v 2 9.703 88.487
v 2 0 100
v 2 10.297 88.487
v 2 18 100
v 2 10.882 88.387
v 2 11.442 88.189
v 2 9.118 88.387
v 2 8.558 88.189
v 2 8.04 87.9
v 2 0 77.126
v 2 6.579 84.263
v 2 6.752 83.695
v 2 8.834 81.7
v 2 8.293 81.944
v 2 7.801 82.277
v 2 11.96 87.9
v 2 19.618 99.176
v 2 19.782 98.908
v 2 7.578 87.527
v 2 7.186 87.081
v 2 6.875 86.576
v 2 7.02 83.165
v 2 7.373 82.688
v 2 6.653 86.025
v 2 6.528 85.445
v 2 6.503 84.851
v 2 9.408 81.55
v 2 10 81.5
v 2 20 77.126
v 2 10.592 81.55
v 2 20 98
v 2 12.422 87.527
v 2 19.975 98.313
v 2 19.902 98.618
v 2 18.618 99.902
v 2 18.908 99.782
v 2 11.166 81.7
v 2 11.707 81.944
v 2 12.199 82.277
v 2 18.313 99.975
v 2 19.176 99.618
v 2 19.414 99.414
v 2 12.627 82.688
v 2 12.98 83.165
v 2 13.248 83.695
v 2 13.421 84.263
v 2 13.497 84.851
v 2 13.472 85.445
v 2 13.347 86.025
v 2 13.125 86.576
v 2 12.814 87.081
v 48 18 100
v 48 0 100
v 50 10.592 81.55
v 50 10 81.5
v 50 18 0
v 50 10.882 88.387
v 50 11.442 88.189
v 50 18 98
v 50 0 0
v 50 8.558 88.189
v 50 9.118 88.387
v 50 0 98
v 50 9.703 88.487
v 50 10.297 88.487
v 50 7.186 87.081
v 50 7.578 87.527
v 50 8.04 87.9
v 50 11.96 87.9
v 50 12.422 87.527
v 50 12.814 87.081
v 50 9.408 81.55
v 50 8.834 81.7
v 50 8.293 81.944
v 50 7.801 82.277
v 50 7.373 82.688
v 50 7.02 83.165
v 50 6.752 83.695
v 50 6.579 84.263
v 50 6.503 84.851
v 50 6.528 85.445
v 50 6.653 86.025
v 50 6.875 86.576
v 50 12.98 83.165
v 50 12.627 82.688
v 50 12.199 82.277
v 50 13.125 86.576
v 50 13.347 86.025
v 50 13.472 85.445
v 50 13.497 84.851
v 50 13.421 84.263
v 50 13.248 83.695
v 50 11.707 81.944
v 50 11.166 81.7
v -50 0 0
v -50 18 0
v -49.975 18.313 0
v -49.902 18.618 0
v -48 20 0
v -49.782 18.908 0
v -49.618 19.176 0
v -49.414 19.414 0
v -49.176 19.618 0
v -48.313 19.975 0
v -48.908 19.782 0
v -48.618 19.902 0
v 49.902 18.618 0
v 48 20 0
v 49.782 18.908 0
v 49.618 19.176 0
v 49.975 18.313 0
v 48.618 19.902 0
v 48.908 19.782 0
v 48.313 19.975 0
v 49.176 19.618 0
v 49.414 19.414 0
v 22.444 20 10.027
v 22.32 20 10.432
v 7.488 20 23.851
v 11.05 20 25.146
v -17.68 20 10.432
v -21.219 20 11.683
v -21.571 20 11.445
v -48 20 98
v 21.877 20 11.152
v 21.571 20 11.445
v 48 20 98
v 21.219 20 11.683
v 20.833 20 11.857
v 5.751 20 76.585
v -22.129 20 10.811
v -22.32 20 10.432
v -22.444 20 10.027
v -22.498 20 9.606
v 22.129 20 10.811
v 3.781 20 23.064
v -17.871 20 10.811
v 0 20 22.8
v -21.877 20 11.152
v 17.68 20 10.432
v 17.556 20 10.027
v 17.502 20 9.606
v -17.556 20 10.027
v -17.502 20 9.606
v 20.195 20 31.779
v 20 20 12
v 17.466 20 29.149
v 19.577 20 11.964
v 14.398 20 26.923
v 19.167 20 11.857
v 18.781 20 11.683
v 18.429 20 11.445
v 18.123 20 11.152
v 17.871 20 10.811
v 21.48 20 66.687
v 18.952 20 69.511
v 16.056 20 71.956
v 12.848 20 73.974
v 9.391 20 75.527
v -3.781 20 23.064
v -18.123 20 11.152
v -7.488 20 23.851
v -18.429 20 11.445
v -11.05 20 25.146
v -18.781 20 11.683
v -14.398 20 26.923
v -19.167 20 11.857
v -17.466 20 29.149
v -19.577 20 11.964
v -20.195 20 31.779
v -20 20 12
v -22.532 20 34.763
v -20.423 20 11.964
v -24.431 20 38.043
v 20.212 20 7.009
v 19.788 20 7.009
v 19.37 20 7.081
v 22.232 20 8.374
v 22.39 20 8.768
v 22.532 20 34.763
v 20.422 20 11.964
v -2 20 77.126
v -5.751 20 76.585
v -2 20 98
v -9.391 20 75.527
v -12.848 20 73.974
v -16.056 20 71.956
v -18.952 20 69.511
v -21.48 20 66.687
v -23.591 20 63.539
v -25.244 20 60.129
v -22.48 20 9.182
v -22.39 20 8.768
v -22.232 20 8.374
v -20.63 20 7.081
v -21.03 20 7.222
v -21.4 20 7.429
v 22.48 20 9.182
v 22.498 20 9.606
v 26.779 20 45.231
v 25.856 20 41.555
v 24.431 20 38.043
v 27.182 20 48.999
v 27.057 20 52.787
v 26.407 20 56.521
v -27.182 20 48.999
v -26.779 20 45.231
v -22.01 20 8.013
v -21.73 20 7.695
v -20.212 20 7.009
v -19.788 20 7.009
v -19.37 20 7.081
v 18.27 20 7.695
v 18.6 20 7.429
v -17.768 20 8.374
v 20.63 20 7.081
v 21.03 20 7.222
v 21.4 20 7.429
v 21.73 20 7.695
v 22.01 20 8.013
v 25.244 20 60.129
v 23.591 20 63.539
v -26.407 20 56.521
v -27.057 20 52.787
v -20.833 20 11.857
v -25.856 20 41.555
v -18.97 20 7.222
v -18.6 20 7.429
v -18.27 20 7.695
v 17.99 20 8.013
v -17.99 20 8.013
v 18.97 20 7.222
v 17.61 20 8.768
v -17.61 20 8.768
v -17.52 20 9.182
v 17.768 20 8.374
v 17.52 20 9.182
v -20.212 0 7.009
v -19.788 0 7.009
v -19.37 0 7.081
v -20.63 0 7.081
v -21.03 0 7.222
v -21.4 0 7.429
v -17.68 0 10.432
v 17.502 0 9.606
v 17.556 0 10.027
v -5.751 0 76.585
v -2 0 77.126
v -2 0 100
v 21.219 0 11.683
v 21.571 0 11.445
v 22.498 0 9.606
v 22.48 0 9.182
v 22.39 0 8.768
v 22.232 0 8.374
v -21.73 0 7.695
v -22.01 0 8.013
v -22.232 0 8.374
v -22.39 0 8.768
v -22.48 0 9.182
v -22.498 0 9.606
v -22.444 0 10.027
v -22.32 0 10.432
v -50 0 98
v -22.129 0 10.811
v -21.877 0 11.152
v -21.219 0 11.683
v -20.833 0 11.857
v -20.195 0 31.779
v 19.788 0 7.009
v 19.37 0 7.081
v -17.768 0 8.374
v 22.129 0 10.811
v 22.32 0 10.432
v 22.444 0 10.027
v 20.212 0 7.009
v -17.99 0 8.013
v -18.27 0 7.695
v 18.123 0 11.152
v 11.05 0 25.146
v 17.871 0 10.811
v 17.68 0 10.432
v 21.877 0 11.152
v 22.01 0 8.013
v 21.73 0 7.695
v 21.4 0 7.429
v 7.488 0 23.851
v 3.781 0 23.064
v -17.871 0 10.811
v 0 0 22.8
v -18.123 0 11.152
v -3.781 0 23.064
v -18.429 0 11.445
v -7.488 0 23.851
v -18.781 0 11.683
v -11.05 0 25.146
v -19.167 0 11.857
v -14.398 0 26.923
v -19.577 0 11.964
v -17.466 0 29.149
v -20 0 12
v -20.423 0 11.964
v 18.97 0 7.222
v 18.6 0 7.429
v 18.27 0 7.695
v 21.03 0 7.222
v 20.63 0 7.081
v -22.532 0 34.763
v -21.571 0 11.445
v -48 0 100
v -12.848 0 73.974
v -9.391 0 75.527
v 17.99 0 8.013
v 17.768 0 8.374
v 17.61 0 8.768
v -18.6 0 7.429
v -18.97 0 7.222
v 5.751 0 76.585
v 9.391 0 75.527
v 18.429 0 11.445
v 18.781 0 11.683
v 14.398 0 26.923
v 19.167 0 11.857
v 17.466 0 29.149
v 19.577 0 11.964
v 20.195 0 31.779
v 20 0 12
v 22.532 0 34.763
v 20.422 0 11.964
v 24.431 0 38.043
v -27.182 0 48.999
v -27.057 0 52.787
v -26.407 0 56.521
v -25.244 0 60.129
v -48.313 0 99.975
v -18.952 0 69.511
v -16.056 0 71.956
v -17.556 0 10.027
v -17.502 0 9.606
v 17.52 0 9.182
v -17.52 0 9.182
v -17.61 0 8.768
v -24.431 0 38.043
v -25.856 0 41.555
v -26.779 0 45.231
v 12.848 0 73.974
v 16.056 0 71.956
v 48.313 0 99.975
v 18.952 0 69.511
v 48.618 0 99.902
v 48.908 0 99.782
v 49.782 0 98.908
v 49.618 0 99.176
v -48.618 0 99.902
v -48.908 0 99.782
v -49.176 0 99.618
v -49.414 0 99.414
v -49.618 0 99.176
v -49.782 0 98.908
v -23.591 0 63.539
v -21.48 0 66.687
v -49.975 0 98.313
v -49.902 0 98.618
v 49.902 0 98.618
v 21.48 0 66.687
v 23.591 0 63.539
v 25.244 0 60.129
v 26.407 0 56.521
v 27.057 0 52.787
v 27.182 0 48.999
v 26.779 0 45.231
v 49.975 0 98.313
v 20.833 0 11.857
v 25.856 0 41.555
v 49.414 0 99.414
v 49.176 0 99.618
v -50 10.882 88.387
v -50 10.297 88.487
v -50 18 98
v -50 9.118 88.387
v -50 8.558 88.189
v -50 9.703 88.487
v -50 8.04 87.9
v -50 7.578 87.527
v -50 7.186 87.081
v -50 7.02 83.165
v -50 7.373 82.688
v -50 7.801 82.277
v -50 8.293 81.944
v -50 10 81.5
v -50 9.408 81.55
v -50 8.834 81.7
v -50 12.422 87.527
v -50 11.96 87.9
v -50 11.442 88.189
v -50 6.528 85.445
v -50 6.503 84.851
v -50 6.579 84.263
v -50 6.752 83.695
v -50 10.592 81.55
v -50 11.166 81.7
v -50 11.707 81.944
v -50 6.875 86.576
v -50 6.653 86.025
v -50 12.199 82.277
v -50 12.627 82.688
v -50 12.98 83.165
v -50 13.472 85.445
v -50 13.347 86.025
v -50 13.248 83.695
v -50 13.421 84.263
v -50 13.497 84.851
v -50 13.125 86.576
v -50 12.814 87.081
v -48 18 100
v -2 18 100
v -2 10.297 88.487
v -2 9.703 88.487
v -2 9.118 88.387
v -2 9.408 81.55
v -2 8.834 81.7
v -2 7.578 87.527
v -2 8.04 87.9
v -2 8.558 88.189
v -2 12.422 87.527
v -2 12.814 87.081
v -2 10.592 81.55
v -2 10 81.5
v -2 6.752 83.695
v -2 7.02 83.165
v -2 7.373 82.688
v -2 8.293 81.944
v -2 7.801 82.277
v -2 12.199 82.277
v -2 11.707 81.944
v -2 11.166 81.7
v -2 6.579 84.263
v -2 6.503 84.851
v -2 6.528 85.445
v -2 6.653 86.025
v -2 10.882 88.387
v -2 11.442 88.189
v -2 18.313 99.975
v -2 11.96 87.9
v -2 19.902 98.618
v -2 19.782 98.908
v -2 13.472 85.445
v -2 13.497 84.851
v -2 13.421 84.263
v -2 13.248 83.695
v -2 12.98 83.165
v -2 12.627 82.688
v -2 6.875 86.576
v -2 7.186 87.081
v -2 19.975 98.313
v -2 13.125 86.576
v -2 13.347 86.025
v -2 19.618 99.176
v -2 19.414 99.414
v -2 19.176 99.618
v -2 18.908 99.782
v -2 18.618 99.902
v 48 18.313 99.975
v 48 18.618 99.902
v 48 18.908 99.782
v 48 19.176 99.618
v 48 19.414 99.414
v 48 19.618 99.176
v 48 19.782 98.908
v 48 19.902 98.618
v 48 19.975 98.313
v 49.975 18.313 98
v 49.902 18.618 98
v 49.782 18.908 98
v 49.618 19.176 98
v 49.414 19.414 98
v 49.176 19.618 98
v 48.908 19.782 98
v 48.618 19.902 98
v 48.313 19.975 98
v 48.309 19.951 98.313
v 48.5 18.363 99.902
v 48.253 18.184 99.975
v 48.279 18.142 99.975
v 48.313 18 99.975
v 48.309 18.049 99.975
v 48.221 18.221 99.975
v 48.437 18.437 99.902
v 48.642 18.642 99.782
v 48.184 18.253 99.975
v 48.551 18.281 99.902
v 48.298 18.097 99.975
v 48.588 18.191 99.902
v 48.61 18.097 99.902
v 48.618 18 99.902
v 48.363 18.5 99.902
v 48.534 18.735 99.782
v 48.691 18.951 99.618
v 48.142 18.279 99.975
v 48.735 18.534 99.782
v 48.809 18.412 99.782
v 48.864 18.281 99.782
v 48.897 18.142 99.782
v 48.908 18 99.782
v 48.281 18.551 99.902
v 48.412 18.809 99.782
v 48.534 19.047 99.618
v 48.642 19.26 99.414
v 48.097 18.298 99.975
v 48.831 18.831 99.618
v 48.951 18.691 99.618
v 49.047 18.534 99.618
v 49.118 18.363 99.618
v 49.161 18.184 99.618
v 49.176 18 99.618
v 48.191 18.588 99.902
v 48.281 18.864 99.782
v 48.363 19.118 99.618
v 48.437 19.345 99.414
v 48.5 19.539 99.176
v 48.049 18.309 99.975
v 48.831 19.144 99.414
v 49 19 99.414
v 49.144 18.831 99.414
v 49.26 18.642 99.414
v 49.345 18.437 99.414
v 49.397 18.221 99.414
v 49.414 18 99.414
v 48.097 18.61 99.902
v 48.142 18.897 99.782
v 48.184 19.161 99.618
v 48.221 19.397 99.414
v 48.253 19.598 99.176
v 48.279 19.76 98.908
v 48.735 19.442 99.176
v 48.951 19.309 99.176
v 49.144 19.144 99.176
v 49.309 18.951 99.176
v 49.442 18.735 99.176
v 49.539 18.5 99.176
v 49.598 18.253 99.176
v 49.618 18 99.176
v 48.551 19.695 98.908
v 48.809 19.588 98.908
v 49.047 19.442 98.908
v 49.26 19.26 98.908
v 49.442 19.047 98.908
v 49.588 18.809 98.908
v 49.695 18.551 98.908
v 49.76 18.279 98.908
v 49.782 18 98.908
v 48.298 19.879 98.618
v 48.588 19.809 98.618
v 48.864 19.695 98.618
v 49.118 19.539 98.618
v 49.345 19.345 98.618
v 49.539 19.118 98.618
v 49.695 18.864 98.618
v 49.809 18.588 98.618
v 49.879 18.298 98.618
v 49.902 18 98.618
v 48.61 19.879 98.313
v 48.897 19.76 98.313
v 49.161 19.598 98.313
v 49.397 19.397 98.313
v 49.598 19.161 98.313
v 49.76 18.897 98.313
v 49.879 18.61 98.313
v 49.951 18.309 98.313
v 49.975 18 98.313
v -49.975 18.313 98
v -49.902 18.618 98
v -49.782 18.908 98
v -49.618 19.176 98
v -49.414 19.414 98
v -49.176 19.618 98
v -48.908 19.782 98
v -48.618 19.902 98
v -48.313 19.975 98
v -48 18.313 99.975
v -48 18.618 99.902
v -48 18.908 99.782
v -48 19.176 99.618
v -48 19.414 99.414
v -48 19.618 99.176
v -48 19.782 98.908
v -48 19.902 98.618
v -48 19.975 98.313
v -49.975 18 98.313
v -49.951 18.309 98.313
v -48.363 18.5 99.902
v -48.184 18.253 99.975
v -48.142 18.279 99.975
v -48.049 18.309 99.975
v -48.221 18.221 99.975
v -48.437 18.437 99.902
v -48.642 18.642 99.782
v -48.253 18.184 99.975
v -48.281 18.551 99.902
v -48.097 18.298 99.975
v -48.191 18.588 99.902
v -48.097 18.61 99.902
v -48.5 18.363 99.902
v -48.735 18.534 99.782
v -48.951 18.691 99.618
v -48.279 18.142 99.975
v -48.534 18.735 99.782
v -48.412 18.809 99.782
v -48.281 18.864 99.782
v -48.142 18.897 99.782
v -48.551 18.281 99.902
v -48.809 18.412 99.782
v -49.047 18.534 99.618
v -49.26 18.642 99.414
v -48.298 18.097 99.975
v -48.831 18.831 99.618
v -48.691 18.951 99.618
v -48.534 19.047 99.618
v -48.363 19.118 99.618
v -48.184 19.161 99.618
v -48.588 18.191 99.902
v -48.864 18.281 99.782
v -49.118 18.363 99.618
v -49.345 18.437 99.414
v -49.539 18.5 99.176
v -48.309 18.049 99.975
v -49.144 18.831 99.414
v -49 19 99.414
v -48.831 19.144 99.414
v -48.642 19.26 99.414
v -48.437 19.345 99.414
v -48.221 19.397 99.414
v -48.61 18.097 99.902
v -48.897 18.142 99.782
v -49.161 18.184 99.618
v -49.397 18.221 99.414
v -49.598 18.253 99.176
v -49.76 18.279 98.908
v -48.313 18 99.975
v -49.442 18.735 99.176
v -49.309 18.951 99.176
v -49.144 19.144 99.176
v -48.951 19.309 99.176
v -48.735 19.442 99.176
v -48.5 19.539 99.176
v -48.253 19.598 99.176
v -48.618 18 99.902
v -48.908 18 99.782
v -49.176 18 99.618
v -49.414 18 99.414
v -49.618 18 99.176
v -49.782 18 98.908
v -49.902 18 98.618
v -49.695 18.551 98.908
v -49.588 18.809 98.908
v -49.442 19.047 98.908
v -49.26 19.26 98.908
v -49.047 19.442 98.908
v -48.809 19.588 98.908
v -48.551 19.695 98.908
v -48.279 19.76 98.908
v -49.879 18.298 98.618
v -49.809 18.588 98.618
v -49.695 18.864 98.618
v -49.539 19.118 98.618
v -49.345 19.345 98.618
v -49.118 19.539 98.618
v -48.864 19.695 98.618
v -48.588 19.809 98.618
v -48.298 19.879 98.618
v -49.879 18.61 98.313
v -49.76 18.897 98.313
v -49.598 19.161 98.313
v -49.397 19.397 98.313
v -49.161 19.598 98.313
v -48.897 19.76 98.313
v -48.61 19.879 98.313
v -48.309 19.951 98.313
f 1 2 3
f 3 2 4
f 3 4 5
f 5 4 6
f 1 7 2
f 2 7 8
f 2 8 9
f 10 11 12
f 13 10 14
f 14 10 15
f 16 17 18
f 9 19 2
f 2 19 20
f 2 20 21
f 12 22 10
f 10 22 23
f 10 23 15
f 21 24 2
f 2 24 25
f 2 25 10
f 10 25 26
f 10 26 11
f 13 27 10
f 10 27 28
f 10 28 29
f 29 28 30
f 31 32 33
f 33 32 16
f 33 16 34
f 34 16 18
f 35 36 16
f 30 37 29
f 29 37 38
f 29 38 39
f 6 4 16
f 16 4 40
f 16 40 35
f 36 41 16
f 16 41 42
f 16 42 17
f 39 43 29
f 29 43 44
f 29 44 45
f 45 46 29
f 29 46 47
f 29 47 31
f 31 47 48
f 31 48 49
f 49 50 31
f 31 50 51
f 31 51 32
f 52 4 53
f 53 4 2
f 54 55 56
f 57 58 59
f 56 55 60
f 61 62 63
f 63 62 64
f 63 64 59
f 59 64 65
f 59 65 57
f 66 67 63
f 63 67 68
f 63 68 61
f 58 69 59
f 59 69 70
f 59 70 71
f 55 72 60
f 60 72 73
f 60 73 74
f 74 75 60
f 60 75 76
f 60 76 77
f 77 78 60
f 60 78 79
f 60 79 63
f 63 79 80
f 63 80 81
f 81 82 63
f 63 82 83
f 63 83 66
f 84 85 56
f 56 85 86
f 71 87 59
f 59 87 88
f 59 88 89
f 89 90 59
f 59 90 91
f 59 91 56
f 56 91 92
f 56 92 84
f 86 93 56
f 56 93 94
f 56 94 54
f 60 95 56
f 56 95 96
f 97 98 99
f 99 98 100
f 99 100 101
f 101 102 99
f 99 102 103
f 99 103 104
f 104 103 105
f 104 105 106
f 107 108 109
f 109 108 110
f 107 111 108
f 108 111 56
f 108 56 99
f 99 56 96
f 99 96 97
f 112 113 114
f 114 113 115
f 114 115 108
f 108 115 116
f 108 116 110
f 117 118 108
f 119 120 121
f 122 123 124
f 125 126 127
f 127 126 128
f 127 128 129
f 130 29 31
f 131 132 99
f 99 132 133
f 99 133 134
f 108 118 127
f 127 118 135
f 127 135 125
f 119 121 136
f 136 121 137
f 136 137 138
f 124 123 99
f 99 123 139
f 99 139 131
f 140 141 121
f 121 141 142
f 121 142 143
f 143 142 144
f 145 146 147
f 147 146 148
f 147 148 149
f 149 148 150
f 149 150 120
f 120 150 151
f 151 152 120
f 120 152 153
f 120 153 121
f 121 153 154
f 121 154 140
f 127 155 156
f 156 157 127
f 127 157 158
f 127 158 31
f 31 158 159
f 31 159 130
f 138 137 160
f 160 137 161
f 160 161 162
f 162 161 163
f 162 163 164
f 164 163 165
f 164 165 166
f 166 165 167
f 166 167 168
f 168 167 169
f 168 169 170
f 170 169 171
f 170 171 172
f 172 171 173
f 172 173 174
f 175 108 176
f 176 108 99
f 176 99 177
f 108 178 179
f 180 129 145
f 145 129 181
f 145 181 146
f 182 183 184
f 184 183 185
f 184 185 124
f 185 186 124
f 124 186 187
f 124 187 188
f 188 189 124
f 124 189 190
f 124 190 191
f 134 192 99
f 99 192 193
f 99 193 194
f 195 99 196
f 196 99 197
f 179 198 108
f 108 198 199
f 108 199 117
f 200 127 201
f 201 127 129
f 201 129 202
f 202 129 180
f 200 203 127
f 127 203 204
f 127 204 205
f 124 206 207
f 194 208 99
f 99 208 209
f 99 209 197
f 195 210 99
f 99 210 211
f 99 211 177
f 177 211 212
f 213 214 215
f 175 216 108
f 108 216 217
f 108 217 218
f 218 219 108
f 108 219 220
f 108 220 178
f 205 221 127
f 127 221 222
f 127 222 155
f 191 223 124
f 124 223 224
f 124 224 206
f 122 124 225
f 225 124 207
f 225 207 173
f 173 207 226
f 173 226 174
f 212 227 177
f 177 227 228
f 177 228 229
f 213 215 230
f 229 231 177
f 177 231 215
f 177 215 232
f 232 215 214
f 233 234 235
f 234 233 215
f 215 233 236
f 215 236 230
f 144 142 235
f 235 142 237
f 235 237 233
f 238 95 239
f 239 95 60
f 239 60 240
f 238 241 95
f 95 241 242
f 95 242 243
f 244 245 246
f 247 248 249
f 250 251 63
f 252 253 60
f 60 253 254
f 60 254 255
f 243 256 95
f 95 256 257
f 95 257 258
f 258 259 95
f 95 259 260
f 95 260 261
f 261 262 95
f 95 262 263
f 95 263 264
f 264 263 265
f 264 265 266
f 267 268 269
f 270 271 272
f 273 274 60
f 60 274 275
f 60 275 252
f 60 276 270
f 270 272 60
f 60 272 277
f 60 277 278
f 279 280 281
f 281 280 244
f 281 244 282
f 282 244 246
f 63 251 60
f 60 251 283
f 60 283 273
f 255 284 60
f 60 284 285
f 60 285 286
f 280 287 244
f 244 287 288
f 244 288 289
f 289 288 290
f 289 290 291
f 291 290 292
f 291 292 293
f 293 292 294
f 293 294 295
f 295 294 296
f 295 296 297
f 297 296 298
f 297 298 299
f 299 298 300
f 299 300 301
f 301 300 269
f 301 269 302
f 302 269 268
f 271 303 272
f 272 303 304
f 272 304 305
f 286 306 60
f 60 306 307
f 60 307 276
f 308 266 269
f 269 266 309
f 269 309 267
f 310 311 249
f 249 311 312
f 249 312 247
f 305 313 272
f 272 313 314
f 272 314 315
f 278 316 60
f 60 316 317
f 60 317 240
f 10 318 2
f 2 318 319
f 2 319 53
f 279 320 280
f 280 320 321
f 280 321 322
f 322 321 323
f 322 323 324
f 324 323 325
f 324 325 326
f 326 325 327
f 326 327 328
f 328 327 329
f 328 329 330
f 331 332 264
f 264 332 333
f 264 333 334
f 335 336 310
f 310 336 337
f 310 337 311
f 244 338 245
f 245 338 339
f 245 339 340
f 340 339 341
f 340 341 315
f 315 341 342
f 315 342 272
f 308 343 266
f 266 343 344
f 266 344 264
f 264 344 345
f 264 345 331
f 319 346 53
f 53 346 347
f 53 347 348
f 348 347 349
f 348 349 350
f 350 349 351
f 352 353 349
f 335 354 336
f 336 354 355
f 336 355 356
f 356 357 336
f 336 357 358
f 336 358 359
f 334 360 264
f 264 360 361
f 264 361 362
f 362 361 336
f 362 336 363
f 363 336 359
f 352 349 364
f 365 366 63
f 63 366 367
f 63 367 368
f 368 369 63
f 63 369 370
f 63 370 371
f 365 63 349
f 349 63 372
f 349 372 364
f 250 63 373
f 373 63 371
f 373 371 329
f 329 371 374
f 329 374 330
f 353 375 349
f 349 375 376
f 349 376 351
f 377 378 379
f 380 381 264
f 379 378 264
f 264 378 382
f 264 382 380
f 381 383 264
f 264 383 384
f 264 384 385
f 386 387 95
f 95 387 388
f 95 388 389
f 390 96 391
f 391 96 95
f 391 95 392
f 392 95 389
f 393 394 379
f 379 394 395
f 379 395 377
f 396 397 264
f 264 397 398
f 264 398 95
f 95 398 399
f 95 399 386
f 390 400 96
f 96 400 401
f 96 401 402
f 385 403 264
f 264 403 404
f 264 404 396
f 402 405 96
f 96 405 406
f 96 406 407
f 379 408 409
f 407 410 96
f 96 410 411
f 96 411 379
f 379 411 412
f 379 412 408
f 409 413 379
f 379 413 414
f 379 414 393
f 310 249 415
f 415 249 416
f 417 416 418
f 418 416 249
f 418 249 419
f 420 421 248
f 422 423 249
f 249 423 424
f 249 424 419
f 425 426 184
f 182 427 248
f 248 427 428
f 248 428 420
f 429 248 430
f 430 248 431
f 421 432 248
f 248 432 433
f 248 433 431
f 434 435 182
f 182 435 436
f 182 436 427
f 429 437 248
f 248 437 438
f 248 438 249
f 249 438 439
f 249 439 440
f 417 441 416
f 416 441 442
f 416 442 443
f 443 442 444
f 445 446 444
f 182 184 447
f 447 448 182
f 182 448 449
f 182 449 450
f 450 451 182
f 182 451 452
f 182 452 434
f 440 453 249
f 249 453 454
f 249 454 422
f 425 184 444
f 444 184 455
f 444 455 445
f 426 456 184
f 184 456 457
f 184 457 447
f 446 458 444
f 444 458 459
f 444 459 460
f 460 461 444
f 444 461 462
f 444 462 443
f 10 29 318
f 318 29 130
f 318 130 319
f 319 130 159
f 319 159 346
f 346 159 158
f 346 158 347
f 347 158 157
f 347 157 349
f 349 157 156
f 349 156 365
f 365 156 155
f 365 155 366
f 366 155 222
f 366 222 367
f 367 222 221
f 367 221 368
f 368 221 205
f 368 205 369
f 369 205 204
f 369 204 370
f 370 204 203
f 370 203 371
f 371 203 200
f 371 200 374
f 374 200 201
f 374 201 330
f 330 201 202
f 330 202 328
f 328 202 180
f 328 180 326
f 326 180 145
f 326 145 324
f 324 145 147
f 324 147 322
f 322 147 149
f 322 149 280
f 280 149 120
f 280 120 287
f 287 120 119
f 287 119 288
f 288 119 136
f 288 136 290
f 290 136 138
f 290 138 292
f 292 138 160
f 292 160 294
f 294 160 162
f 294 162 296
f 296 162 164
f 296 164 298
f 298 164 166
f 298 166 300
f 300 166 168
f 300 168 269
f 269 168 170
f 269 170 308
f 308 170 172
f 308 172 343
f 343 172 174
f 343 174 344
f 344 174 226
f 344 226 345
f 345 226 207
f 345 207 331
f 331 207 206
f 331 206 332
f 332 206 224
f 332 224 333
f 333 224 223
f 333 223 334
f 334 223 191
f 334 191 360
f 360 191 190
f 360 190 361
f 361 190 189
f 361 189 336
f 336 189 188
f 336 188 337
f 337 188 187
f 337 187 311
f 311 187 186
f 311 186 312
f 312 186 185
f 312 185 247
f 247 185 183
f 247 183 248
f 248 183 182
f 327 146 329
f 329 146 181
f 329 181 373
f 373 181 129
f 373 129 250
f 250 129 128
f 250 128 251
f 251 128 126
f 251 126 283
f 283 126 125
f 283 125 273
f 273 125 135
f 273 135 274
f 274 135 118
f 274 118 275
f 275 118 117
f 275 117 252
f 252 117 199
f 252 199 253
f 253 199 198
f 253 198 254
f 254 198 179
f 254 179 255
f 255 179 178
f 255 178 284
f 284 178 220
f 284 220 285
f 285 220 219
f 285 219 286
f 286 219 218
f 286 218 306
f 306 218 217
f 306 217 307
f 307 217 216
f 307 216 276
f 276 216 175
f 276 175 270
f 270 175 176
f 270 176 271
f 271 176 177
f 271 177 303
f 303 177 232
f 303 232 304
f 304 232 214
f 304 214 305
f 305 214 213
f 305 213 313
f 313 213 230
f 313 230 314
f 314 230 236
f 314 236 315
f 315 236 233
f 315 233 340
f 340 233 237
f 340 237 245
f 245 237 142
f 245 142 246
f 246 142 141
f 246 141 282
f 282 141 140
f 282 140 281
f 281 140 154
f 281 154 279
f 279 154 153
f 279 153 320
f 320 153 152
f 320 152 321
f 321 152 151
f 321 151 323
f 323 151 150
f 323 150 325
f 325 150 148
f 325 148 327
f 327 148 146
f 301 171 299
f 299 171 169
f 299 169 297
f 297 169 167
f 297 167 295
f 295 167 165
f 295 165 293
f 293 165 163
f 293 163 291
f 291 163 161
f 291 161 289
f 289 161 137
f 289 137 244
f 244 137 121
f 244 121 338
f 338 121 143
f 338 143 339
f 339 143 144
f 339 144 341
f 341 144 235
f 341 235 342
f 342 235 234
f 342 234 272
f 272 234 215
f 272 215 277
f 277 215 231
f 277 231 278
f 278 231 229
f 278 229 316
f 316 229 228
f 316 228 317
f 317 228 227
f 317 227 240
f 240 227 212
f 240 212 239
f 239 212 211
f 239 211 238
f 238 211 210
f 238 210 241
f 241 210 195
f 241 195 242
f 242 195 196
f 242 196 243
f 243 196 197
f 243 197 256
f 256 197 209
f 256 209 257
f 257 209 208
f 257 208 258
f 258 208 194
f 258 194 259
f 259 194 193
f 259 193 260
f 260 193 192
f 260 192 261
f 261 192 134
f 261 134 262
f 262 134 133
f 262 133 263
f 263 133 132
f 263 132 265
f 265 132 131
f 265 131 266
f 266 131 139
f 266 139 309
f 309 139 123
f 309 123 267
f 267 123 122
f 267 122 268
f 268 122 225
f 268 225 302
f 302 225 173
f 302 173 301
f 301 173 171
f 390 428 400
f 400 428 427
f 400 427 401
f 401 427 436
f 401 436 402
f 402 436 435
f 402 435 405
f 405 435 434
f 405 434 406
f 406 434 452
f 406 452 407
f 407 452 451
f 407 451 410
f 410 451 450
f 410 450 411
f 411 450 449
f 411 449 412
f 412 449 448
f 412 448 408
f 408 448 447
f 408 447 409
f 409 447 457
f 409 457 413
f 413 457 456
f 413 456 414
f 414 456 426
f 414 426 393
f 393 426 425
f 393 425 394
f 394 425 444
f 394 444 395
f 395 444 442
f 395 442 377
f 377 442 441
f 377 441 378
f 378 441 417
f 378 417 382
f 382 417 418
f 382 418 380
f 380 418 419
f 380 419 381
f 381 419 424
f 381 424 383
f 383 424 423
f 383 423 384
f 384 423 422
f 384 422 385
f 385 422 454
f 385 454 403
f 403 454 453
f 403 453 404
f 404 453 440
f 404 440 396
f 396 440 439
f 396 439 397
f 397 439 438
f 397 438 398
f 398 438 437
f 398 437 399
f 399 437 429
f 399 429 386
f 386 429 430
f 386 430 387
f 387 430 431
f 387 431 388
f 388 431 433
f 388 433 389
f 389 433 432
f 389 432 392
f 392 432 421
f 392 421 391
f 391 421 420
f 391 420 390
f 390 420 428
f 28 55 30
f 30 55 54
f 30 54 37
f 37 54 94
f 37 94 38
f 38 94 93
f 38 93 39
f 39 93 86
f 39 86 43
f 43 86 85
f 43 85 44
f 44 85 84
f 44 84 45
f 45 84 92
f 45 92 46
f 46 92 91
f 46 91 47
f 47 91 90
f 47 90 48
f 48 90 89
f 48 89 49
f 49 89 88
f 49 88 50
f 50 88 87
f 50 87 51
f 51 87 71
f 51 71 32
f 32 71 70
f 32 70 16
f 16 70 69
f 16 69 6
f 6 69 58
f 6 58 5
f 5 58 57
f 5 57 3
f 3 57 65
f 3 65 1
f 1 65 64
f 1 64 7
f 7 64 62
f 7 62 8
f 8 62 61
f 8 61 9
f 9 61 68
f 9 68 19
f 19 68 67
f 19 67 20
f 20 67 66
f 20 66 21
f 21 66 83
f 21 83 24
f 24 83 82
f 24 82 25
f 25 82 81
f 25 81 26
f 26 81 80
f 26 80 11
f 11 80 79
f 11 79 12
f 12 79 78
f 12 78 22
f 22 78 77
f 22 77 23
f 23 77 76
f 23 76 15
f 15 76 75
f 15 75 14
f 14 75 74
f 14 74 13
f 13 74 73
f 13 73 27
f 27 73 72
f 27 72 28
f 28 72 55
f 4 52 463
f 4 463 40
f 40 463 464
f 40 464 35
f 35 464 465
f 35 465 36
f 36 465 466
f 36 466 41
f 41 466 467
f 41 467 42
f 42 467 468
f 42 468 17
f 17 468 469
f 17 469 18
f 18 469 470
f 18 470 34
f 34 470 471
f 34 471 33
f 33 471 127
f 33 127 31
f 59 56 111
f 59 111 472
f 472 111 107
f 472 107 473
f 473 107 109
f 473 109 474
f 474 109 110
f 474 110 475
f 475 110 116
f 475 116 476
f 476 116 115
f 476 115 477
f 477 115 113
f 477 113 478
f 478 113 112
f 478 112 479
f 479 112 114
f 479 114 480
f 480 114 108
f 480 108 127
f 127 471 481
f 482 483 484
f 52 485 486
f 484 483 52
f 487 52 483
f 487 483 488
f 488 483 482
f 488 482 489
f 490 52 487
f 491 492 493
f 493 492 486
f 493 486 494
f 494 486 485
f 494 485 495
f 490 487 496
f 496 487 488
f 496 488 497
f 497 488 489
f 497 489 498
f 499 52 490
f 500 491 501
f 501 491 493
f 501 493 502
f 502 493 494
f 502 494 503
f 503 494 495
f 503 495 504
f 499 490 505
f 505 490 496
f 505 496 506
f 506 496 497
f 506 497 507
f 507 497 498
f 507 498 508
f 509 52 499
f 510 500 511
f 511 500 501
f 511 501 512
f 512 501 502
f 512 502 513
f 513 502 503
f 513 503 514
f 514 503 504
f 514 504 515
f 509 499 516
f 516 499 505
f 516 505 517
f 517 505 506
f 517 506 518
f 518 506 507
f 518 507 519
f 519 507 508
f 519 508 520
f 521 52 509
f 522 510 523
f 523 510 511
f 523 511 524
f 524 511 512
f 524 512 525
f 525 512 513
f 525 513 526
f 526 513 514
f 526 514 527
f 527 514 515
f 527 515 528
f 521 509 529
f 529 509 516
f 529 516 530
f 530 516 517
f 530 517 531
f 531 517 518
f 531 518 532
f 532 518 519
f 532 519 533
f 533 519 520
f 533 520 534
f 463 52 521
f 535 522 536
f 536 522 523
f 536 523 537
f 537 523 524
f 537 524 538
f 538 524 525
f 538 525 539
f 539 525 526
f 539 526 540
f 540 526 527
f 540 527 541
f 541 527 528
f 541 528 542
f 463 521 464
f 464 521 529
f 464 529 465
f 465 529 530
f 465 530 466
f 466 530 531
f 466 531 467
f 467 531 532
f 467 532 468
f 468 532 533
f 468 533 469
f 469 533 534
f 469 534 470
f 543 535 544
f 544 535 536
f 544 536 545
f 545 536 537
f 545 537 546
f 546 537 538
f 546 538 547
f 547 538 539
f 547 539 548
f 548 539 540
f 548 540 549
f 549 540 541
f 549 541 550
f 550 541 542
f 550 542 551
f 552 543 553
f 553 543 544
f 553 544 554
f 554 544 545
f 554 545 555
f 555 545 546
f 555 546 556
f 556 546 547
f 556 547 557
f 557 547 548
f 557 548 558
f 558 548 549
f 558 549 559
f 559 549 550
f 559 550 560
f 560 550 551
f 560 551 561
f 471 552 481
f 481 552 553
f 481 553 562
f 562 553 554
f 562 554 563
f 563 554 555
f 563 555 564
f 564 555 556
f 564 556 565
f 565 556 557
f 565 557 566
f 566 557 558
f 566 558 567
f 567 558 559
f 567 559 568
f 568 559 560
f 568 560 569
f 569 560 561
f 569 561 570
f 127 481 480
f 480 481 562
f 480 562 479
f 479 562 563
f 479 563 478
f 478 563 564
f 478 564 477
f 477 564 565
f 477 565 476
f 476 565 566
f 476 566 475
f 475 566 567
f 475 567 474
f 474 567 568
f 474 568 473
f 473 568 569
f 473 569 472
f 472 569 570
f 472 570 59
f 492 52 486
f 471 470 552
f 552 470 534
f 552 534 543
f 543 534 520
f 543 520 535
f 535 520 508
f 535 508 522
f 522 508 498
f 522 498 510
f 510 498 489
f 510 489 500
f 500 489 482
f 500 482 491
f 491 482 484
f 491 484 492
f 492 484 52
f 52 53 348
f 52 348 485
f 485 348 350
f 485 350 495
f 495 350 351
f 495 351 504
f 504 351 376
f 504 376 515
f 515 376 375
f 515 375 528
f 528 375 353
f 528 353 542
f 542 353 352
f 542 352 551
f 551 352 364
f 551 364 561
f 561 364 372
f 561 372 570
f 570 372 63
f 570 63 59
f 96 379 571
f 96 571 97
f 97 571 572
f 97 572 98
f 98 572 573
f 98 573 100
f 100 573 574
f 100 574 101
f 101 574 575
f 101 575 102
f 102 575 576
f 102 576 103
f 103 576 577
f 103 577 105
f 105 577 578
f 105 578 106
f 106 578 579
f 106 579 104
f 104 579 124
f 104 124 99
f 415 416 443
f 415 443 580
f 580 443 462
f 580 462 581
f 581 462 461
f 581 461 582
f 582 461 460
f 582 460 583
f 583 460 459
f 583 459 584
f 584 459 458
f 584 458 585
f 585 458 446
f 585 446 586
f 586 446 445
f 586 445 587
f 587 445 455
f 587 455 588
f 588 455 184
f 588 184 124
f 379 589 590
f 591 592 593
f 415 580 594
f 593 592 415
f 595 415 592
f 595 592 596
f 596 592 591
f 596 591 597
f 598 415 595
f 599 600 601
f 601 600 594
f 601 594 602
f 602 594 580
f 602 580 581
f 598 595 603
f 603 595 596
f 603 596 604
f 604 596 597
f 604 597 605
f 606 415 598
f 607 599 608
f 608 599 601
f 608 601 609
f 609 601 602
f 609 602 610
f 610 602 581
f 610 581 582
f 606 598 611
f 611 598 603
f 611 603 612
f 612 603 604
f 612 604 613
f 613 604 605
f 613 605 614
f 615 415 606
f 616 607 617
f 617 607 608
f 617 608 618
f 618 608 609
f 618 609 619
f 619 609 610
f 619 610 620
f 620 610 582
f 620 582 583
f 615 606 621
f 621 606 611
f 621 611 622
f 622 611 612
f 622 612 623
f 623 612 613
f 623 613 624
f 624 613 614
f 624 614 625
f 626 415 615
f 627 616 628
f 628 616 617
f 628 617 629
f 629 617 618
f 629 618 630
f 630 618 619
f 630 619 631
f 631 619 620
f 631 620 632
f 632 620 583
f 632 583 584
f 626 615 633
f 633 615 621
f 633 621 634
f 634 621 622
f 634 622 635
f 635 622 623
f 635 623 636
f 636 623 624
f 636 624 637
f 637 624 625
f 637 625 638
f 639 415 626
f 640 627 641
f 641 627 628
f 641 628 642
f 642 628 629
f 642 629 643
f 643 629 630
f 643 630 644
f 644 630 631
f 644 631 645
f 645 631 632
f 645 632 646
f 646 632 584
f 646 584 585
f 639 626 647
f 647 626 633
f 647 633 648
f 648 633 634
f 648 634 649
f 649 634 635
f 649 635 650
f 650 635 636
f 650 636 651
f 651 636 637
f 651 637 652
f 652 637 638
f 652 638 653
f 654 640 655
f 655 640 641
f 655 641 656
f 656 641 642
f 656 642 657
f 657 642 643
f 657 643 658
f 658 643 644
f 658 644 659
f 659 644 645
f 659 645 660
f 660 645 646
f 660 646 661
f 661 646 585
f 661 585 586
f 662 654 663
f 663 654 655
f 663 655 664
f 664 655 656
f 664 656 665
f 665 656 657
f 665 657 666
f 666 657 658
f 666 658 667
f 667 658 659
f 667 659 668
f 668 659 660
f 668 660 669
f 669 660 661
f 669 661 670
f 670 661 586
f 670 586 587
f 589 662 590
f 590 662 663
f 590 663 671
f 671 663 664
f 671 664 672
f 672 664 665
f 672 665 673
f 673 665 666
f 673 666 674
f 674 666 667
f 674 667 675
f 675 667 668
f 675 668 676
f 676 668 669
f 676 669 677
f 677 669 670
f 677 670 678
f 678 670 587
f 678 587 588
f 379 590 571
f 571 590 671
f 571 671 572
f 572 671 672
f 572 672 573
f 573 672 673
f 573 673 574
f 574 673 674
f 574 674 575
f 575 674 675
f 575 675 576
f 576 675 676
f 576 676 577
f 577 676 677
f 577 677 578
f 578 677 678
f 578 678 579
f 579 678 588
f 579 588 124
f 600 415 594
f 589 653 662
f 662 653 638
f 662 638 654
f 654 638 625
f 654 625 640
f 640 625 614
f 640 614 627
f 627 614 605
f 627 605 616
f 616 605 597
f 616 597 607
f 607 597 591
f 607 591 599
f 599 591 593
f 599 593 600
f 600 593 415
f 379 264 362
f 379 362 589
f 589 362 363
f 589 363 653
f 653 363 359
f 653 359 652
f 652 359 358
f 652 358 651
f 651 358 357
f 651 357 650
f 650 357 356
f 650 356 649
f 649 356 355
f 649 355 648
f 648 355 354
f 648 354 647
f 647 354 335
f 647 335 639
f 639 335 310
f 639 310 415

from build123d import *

# Parameters (mm, degrees)
BOSS_EXTRU_1_DEPTH      = 20
ESQUISSE2_R             = 27.2
ENL_V_MAT_EXTRU_1_DEPTH = 20
ESQUISSE3_R             = 2.5
ENL_V_MAT_EXTRU_2_DEPTH = 20
ESQUISSE4_R             = 3.5
ENL_V_MAT_EXTRU_3_DEPTH = 143.828568571
CONG_1_R                = 2


with BuildPart() as part:
    # Esquisse1 → Boss.-Extru.1 (new body)
    with BuildSketch(Plane(origin=(0, 0, 0), x_dir=(1, 0, 0), z_dir=(0, 1, 0))):
        Polygon((0, 0), (50, 0), (50, -100), (2, -100), (2, -50), (0, -50), align=None)
    boss_extru_1 = extrude(amount=BOSS_EXTRU_1_DEPTH)

    # Symétrie1: Boss.-Extru.1 across plane
    add(boss_extru_1.mirror(Plane(origin=(0, 0, 0), x_dir=(0, 0, 1), z_dir=(1, 0, 0))))

    # Esquisse2 → Enlèv. mat.-Extru.1 (cut)
    with BuildSketch(Plane(origin=(0, 20, 0), x_dir=(1, 0, 0), z_dir=(0, 1, 0))):
        with Locations((0, -50)):
            Circle(ESQUISSE2_R)
    extrude(amount=-ENL_V_MAT_EXTRU_1_DEPTH, mode=Mode.SUBTRACT)

    # Esquisse3 → Enlèv. mat.-Extru.2 (cut)
    with BuildSketch(Plane(origin=(0, 20, 0), x_dir=(1, 0, 0), z_dir=(0, 1, 0))):
        with Locations(Location((20, -9.5, 0), (0, 0, 270))):
            Circle(ESQUISSE3_R)
    enl_v_mat_extru_2 = extrude(amount=-ENL_V_MAT_EXTRU_2_DEPTH, mode=Mode.SUBTRACT)

    # Symétrie3: Enlèv. mat.-Extru.2 across plane
    add(enl_v_mat_extru_2.mirror(Plane(origin=(0, 0, 0), x_dir=(0, 0, 1), z_dir=(1, 0, 0))), mode=Mode.SUBTRACT)

    # Esquisse4 → Enlèv. mat.-Extru.3 (cut, through all)
    with BuildSketch(Plane(origin=(50, 0, 0), x_dir=(0, 0, -1), z_dir=(1, 0, 0))):
        with Locations((-85, 10)):
            Circle(ESQUISSE4_R)
    extrude(amount=-ENL_V_MAT_EXTRU_3_DEPTH, mode=Mode.SUBTRACT)

    # Congé1
    cong_1_edges = [part.edges().sort_by_distance(p)[0] for p in [
        (50, 10, 100),
        (26, 20, 100),
        (50, 20, 50),
        (-50, 20, 50),
        (-26, 20, 100),
        (-50, 10, 100),
    ]]
    fillet(cong_1_edges, radius=CONG_1_R)


solid = part.part
